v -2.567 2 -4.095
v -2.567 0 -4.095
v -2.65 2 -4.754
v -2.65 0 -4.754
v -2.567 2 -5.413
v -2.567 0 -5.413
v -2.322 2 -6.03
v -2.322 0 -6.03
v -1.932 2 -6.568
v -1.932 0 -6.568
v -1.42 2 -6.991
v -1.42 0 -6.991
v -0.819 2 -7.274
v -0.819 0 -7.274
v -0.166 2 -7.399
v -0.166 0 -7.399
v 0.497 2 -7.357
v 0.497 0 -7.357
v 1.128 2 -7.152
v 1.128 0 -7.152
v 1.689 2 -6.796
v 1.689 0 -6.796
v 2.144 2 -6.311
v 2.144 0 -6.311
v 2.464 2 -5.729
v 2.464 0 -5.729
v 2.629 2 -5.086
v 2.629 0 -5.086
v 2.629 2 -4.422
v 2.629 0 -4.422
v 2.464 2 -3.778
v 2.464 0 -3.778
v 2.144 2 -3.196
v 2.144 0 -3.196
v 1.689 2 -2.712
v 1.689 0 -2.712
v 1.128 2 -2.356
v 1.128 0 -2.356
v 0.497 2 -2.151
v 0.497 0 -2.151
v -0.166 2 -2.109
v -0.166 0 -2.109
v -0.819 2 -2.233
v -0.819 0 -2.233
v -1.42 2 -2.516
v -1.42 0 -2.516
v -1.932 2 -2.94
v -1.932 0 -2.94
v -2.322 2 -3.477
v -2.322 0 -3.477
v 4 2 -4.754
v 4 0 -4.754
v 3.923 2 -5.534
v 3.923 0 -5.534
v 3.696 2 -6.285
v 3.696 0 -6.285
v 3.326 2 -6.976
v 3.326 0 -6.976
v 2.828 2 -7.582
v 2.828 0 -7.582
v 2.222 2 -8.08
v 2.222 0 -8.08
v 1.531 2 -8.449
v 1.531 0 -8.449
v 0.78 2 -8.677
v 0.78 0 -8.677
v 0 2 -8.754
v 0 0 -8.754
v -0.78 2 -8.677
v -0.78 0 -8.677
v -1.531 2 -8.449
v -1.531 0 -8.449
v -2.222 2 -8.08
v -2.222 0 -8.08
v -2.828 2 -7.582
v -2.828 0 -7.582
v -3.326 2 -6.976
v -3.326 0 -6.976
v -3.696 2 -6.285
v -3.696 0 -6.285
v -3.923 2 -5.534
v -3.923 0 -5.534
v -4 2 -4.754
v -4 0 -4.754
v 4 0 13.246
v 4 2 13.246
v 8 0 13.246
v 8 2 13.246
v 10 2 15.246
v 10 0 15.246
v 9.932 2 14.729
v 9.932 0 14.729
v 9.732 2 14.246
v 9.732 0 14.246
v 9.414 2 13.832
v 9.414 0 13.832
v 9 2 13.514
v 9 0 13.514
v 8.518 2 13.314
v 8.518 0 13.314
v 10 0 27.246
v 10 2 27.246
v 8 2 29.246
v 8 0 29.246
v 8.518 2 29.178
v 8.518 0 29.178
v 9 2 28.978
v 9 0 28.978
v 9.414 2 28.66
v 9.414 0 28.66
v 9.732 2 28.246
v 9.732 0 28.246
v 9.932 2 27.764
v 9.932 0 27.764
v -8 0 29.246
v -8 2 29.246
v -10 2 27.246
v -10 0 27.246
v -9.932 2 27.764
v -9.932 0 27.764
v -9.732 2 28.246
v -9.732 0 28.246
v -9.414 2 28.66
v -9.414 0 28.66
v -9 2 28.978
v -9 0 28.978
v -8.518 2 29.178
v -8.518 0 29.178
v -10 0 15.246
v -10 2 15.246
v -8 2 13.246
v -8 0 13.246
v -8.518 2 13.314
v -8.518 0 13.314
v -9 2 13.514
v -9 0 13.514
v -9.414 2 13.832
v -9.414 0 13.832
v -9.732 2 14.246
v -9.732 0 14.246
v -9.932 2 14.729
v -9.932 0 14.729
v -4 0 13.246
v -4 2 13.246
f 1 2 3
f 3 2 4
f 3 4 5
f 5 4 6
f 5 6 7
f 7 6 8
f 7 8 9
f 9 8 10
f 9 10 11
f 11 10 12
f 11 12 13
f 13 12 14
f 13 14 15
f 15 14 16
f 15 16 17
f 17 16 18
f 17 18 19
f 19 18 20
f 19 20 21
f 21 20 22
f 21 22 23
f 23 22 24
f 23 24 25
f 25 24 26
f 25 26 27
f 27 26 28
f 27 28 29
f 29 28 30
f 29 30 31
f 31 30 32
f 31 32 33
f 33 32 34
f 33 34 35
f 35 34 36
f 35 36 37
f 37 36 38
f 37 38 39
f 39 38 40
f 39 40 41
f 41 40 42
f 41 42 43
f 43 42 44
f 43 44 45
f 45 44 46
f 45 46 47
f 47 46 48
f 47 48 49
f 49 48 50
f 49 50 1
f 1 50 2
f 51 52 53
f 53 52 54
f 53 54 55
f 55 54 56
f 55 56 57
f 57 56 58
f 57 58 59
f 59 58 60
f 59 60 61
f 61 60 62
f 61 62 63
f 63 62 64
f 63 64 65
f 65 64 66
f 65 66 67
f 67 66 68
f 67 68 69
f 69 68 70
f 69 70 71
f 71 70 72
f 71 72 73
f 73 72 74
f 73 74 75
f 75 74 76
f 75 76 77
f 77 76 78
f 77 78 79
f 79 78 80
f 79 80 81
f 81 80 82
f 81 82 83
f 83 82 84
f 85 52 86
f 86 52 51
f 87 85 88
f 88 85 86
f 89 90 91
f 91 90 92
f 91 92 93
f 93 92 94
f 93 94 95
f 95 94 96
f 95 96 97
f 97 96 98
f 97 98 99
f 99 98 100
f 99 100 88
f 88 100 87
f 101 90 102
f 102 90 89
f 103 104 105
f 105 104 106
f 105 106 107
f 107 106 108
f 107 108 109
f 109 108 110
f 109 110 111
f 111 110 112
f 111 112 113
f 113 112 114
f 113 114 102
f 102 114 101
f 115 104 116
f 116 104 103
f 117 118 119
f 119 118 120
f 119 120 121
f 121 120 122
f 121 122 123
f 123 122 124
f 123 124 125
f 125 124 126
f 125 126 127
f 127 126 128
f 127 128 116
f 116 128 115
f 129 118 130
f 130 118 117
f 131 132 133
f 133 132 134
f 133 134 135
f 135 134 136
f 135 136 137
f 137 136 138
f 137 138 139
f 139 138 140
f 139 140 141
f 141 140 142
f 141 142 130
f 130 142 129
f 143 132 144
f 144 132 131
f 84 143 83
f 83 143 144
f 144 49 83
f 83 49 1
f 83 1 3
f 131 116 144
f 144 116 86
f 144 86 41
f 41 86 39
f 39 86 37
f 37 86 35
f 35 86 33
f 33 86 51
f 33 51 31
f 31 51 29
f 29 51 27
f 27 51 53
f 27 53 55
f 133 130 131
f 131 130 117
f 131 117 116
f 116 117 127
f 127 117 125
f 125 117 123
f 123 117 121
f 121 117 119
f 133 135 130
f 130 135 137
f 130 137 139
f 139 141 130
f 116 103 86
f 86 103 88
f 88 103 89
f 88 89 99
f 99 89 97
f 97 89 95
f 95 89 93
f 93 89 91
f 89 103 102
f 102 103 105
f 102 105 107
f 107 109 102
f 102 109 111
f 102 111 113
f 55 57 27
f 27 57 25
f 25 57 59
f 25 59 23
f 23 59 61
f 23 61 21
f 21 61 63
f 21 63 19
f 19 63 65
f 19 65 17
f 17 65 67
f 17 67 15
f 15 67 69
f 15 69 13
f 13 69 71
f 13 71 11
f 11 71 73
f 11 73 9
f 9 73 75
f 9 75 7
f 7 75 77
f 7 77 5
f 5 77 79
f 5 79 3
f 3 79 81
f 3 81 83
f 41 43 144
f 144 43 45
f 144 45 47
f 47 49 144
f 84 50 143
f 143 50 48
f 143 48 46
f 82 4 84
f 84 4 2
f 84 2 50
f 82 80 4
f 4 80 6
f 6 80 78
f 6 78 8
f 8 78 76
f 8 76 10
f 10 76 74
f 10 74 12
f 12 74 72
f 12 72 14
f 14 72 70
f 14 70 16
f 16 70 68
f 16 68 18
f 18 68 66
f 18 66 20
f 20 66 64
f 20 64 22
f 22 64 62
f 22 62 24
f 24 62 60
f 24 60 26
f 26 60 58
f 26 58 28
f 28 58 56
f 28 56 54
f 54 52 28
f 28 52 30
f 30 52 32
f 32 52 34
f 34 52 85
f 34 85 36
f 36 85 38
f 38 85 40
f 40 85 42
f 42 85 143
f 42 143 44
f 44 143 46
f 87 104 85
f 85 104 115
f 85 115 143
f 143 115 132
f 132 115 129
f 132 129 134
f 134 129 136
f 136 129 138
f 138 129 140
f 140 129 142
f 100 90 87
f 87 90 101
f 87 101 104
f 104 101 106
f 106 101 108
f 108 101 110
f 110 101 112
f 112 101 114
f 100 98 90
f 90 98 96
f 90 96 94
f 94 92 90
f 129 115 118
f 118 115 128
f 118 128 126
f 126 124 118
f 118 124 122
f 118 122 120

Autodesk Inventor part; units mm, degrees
ref_plane "YZ Plane" through (0, 0, 0) normal (1, 0, 0) x (0, 1, 0)
ref_plane "XZ Plane" through (0, 0, 0) normal (0, 1, 0) x (-1, 0, 0)
ref_plane "XY Plane" through (0, 0, 0) normal (0, 0, 1) x (1, 0, 0)
sketch "Sketch1" plane through (0, 0, 0) normal (0, 1, 0) x (-1, 0, 0)
  arc A0 (-3.2658, -7.0635) -> (4, -4.7538) centre (0, -4.7538) ccw
  arc A1 (-4, -4.7538) -> (-3.2658, -7.0635) centre (0, -4.7538) ccw
  line L0 (4, -4.7538) -> (4, 13.2462)
  line L1 (4, 13.2462) -> (8, 13.2462)
  line L2 (10, 15.2462) -> (10, 27.2462)
  line L3 (8, 29.2462) -> (-8, 29.2462)
  line L4 (-10, 27.2462) -> (-10, 15.2462)
  line L5 (-8, 13.2462) -> (-4, 13.2462)
  line L6 (-4, 13.2462) -> (-4, -4.7538)
  circle A2 centre (0, -4.7538) radius 2.65
  arc A3 (8, 13.2462) -> (10, 15.2462) centre (8, 15.2462) ccw
  arc A4 (10, 27.2462) -> (8, 29.2462) centre (8, 27.2462) ccw
  arc A5 (-8, 29.2462) -> (-10, 27.2462) centre (-8, 27.2462) ccw
  arc A6 (-10, 15.2462) -> (-8, 13.2462) centre (-8, 15.2462) ccw
  point P0 (0, 0)
  point P1 (0, 29.2462)
  dimension "d1" = 4
  dimension "d2" = 5.3
  dimension "d6" = 2
  dimension "d7" = 2
  dimension "d9" = 20
  dimension "d10" = 16
  dimension "d13" = 18
extrude "Extrusion2" add sketch "Sketch1" along normal blind 2
properties part number "Pomodoro Robot Servo's piece"
